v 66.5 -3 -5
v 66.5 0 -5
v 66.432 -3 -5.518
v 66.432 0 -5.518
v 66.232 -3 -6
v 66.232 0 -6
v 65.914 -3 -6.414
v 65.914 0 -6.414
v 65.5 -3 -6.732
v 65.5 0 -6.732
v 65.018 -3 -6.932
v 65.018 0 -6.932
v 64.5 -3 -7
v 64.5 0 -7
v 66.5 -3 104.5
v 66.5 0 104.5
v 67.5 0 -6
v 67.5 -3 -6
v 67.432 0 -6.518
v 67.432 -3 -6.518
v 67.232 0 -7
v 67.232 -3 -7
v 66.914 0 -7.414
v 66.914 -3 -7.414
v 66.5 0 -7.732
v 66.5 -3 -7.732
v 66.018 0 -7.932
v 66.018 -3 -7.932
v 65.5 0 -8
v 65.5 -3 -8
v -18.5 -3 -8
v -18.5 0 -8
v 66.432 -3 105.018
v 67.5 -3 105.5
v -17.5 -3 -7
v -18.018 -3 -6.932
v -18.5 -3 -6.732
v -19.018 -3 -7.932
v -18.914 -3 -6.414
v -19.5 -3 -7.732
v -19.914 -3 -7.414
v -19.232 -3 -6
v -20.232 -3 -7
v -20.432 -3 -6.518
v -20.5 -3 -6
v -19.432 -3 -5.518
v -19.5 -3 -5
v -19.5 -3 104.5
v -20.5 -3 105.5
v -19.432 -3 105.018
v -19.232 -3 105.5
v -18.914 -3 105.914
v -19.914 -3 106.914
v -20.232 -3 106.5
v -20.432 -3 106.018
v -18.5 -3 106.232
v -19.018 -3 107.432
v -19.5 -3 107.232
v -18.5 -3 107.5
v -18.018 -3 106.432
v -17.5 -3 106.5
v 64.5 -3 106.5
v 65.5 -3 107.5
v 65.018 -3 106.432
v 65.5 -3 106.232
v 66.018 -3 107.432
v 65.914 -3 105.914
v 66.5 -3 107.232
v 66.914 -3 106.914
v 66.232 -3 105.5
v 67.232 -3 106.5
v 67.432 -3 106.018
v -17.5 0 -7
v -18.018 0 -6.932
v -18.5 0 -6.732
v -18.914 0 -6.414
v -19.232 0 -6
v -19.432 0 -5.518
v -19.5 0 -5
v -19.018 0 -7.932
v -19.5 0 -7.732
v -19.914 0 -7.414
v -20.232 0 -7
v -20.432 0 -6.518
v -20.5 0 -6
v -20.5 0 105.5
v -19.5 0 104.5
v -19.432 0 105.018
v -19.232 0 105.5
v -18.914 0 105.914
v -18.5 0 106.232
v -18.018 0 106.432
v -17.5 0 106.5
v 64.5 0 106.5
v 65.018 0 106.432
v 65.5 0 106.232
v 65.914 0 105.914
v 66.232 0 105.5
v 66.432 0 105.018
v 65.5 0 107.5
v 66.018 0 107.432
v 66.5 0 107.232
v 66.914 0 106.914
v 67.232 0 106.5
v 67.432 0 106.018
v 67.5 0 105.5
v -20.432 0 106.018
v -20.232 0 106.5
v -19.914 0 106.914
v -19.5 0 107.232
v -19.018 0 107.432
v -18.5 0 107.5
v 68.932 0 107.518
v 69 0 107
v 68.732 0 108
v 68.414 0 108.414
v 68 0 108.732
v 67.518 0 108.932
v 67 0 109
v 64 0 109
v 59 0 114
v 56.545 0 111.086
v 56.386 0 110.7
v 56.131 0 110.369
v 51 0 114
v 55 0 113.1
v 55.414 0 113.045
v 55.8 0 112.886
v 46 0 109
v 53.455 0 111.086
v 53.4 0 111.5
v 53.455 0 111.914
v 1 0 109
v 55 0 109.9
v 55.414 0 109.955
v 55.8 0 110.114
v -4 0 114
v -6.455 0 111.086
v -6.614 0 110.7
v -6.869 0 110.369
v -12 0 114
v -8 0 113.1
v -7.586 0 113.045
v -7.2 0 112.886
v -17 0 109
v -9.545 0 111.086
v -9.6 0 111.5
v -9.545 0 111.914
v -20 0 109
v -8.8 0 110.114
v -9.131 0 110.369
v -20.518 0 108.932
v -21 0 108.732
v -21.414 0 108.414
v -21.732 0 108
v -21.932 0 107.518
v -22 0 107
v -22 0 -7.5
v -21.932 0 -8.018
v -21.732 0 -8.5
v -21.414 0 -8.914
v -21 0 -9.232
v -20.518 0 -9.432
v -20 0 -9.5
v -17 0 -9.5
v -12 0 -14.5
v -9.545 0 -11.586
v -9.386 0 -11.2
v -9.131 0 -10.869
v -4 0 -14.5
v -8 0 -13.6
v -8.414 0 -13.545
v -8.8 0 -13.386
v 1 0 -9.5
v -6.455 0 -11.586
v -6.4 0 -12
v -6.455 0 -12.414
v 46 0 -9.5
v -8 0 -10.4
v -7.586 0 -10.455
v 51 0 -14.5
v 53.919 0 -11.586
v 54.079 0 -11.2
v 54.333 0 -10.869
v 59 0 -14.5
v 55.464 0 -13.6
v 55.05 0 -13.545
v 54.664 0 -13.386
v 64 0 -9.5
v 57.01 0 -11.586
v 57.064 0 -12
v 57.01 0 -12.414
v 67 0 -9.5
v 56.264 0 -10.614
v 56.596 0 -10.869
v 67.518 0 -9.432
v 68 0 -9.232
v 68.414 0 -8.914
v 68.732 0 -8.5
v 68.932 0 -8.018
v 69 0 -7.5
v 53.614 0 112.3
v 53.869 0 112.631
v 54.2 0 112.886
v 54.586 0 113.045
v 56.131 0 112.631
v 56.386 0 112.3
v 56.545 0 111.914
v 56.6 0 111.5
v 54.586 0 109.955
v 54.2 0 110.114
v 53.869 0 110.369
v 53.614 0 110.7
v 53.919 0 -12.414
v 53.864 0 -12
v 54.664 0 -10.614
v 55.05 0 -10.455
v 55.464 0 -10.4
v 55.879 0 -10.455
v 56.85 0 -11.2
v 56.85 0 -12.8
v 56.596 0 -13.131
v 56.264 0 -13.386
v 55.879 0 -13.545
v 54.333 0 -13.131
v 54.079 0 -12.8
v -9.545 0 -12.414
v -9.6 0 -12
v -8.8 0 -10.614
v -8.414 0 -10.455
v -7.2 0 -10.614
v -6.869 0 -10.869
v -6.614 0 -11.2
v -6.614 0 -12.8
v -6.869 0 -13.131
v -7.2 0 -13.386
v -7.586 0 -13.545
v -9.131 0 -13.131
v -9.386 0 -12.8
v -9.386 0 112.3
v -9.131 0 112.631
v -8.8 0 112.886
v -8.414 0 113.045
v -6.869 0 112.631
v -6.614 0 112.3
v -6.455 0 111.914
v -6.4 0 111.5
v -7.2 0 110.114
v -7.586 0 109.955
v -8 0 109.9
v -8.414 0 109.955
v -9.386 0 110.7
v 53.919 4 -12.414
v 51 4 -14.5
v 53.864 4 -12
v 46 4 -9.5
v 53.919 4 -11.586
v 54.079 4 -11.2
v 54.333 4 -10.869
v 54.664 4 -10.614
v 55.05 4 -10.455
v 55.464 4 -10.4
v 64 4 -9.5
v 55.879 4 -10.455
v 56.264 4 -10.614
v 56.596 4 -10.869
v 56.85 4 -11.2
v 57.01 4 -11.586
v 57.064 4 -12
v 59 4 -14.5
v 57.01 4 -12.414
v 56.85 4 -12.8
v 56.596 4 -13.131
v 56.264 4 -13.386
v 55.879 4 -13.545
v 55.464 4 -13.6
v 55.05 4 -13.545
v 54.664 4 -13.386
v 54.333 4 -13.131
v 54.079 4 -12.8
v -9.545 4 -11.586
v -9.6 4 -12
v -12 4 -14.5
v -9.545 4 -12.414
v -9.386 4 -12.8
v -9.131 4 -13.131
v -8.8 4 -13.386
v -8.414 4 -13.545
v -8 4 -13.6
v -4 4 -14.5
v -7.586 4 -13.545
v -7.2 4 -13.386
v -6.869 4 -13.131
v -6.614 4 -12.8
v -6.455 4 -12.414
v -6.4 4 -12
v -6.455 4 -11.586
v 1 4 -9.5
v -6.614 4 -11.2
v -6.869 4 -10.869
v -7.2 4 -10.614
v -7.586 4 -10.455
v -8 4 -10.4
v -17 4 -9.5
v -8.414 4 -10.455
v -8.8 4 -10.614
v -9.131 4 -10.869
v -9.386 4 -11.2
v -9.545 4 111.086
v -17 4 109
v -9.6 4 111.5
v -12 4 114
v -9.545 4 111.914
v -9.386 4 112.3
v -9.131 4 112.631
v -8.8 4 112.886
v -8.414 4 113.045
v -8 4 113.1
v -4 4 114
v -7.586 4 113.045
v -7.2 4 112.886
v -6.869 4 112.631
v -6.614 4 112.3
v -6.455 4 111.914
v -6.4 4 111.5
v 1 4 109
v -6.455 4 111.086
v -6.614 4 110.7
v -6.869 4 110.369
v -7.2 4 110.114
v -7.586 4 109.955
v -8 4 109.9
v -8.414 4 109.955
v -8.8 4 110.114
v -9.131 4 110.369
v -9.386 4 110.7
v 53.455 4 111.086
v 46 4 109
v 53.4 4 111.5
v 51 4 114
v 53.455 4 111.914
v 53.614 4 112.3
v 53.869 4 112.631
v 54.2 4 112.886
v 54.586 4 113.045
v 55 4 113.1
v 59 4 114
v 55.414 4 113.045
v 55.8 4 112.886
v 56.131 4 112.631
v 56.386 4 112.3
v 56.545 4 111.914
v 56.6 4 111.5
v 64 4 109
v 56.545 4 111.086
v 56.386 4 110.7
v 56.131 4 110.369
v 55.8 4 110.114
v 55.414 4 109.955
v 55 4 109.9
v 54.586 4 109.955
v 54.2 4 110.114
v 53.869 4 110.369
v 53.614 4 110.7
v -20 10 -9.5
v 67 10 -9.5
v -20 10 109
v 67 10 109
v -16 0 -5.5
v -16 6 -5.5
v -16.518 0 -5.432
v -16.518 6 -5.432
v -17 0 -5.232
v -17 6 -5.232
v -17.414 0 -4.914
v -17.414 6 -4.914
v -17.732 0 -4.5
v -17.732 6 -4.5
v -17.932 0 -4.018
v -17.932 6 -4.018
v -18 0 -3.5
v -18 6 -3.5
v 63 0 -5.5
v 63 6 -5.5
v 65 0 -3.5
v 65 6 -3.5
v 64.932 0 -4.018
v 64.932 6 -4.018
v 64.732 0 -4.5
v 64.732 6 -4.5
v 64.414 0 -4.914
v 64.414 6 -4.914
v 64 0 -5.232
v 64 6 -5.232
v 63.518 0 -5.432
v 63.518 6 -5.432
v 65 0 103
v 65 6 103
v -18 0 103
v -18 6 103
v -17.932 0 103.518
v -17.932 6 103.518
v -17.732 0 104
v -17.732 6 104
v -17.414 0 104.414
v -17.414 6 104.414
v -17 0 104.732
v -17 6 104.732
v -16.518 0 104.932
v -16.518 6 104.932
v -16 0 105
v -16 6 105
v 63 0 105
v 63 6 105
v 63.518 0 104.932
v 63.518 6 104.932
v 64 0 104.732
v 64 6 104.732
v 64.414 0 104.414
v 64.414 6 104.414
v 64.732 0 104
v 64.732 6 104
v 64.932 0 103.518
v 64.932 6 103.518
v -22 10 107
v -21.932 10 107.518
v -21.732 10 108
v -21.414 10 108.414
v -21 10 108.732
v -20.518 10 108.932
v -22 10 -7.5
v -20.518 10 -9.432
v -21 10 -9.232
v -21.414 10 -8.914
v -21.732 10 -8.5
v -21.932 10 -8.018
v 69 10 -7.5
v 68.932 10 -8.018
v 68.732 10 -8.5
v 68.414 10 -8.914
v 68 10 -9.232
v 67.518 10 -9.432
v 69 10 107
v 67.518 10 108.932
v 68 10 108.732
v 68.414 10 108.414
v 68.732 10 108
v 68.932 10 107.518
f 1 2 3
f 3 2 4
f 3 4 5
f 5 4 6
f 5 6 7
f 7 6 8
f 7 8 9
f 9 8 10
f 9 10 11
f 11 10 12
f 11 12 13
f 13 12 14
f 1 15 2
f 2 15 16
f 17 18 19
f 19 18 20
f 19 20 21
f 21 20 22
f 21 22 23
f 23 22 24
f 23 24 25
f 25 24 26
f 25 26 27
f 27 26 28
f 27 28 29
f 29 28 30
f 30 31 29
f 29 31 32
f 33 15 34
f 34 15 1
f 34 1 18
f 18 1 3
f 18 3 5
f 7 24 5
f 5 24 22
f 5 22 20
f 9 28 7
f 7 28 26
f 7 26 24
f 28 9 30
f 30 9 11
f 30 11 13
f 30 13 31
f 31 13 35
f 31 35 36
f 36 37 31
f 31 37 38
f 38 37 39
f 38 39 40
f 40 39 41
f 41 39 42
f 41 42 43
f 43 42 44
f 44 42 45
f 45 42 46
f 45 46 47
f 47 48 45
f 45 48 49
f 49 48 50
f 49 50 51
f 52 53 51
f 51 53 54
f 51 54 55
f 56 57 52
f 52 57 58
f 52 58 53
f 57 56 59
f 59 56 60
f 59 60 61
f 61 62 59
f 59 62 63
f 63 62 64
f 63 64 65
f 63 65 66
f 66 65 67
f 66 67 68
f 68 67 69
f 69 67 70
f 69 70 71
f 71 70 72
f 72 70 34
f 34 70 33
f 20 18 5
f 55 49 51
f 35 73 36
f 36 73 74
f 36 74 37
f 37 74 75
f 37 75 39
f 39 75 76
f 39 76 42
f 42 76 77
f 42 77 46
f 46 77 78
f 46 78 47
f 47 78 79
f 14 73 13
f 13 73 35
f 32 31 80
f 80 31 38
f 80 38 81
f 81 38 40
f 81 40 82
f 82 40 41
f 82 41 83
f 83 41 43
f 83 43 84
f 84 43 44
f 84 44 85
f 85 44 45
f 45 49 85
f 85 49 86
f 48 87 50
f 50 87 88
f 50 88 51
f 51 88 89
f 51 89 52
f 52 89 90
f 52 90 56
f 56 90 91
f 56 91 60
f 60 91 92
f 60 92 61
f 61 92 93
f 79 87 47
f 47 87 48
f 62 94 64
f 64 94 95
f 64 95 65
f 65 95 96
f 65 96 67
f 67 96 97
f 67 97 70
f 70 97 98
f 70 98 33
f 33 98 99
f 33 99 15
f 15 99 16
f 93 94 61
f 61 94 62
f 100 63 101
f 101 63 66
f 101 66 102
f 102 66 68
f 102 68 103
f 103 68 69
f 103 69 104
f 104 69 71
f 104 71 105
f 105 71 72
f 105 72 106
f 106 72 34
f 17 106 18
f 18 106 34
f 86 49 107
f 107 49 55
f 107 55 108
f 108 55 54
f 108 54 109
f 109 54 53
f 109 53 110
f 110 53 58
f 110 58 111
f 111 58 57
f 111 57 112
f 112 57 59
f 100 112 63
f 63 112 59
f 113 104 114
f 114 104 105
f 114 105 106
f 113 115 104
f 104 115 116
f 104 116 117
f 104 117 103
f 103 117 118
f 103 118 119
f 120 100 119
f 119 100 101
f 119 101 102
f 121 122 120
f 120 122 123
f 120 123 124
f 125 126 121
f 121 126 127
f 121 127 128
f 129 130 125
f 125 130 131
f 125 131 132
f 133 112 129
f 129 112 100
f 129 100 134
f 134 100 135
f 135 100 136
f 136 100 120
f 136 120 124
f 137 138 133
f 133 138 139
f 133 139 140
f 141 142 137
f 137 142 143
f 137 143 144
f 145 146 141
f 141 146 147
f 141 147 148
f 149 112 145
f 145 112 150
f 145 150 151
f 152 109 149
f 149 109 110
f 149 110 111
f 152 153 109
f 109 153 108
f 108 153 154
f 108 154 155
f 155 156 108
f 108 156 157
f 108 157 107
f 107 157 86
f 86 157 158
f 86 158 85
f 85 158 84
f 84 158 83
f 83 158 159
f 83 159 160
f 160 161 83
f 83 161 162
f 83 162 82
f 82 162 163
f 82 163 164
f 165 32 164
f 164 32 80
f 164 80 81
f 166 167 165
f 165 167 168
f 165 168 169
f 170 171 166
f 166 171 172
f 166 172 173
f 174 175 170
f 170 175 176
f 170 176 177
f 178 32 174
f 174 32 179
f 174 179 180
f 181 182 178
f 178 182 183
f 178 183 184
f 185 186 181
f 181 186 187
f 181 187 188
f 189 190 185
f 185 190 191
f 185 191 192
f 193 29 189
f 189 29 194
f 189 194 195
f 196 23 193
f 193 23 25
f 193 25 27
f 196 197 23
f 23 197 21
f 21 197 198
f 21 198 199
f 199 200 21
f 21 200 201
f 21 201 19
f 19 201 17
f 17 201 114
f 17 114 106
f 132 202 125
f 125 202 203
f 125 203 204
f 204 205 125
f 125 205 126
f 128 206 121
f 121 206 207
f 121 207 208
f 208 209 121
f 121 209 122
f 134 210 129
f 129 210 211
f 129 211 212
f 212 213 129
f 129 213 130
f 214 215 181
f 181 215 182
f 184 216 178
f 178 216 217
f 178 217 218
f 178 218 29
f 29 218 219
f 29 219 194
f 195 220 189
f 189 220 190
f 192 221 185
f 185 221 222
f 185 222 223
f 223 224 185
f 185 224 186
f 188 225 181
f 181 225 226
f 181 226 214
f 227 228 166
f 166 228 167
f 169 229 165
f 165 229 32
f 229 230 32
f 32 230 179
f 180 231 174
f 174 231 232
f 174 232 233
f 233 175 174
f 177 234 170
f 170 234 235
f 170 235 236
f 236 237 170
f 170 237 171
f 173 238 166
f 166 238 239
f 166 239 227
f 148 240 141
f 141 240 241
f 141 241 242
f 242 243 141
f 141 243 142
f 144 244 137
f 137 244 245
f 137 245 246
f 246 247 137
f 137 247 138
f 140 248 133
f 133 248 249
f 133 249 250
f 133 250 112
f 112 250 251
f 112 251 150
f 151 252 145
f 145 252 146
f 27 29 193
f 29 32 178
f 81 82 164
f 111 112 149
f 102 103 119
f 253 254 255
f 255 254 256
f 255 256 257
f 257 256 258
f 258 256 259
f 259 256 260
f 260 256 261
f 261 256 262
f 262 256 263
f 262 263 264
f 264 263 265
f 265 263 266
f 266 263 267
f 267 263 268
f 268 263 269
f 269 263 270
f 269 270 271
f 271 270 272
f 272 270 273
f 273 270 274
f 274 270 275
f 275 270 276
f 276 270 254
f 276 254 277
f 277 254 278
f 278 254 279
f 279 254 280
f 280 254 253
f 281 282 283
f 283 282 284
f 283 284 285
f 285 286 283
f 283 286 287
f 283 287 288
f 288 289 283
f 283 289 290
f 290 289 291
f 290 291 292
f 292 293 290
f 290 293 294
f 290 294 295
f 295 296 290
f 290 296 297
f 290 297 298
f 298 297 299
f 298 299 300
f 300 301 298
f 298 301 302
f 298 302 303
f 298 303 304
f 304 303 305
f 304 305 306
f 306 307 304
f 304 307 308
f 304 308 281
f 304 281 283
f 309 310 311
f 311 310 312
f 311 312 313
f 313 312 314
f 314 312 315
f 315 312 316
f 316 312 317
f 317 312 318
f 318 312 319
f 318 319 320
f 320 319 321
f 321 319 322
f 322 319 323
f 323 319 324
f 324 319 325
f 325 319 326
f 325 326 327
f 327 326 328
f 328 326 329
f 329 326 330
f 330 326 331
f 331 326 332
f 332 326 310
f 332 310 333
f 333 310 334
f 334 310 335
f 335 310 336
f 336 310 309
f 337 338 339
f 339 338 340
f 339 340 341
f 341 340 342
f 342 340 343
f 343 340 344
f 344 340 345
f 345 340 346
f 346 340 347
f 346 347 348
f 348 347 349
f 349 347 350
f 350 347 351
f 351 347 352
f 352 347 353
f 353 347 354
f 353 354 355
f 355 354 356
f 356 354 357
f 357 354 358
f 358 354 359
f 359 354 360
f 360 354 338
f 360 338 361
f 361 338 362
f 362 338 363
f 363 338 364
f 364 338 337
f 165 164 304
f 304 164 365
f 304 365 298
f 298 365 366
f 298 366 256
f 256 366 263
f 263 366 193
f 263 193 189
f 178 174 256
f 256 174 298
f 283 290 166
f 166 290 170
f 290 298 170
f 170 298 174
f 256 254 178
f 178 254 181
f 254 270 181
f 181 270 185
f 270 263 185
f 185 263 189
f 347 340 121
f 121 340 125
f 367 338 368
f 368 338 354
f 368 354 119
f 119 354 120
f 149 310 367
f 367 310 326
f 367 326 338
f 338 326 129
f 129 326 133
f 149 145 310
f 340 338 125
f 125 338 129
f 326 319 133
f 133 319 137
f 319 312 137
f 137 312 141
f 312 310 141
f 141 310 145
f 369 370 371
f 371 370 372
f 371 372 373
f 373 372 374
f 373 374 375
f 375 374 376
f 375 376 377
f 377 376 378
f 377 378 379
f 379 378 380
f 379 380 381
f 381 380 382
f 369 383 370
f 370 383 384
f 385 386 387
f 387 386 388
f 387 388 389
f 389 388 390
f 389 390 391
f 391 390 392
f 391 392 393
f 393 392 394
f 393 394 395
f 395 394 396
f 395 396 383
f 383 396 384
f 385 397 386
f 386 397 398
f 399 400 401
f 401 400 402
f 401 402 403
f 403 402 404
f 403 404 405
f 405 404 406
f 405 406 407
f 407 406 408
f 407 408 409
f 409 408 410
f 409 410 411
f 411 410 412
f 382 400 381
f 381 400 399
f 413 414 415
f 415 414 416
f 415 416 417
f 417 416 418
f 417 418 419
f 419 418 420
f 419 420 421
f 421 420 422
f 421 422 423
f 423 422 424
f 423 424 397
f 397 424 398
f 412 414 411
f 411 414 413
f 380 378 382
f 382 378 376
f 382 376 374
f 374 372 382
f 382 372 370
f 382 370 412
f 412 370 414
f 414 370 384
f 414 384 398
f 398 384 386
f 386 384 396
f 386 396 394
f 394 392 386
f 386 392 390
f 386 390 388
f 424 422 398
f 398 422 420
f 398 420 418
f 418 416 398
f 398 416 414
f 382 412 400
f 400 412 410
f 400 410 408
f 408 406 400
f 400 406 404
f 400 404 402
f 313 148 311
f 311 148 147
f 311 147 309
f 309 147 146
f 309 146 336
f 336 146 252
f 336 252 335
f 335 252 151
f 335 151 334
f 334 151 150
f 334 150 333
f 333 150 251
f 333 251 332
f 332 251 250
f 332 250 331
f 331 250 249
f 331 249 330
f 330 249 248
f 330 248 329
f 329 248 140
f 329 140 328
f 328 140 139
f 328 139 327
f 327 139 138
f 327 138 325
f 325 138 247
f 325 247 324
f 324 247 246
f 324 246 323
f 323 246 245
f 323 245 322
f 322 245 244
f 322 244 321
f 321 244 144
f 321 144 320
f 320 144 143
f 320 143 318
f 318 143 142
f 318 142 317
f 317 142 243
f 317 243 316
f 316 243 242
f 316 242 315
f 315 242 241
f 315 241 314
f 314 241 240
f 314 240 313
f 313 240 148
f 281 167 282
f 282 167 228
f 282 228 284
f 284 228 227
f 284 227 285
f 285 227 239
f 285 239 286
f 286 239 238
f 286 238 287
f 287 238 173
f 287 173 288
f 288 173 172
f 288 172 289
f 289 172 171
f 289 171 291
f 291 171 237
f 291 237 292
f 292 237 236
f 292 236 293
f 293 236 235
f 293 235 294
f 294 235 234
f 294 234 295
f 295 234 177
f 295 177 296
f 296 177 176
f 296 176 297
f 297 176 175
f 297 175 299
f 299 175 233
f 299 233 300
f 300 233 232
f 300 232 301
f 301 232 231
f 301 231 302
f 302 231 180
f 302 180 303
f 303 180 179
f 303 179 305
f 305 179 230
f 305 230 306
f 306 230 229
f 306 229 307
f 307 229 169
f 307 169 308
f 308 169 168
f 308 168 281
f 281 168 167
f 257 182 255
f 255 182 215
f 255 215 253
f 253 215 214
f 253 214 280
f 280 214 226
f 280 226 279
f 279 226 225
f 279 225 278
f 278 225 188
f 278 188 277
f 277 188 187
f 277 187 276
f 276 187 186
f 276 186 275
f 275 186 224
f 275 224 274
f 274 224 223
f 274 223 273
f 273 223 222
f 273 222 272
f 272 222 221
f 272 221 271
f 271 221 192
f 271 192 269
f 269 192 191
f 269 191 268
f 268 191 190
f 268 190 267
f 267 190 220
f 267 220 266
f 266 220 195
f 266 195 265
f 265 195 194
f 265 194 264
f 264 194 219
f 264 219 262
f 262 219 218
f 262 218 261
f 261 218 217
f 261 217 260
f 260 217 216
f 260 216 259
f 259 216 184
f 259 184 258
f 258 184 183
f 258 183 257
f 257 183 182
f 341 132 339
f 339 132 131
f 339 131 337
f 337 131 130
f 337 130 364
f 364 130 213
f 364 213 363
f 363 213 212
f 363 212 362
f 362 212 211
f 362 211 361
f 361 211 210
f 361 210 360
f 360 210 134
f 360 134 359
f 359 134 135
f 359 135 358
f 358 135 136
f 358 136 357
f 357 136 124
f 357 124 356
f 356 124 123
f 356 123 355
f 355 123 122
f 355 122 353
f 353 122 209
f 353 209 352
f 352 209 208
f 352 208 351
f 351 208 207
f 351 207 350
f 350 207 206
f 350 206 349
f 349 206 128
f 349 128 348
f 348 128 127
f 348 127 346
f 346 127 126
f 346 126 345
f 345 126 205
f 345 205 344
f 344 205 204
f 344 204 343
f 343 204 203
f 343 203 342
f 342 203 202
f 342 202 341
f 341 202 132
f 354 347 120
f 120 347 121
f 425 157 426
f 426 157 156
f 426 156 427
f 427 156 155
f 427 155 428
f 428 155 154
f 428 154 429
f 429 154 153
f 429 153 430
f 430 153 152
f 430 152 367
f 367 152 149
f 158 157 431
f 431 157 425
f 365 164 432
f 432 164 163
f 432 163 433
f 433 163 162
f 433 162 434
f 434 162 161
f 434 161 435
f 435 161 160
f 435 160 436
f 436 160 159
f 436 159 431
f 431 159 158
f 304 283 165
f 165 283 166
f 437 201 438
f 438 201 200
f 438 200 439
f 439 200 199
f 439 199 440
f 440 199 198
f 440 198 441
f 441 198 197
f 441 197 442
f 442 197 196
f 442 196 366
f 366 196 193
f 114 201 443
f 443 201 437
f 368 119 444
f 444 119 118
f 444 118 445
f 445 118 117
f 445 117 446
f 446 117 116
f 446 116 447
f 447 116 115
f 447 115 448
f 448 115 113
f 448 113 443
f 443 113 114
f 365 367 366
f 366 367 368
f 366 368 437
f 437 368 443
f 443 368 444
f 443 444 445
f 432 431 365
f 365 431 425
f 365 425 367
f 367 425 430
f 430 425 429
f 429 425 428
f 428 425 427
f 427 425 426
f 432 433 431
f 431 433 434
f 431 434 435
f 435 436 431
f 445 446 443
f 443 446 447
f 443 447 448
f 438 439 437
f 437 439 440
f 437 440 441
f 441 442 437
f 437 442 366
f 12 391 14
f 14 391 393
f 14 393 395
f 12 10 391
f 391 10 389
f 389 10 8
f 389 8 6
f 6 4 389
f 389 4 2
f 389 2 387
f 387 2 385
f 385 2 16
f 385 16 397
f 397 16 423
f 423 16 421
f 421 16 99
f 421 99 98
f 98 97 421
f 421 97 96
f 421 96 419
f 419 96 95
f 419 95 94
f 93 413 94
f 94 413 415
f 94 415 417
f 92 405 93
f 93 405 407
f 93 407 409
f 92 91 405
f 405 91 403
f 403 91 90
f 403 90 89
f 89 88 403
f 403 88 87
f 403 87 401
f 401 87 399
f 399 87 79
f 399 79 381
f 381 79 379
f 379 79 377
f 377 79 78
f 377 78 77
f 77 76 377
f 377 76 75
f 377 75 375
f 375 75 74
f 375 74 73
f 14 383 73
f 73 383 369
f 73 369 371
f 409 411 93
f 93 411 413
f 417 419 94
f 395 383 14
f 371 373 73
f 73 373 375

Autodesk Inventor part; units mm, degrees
ref_plane "YZ Plane" through (0, 0, 0) normal (1, 0, 0) x (0, 1, 0)
ref_plane "XZ Plane" through (0, 0, 0) normal (0, 1, 0) x (-1, 0, 0)
ref_plane "XY Plane" through (0, 0, 0) normal (0, 0, 1) x (1, 0, 0)
sketch "Sketch1" plane through (0, 0, 0) normal (0, 1, 0) x (-1, 0, 0)
  circle A0 centre (-55, 111.5) radius 1.6
  circle A1 centre (-55.4645, -12) radius 1.6
  circle A2 centre (8, -12) radius 1.6
  circle A3 centre (8, 111.5) radius 1.6
  arc A4 (-67, 109) -> (-69, 107) centre (-67, 107) ccw
  line L0 (-69, 107) -> (-69, -7.5)
  arc A5 (-69, -7.5) -> (-67, -9.5) centre (-67, -7.5) ccw
  line L1 (-67, -9.5) -> (-64, -9.5)
  line L2 (-59, -14.5) -> (-64, -9.5)
  line L3 (-51, -14.5) -> (-59, -14.5)
  line L4 (-46, -9.5) -> (-51, -14.5)
  line L5 (-46, -9.5) -> (-1, -9.5)
  line L6 (-1, -9.5) -> (4, -14.5)
  line L7 (4, -14.5) -> (12, -14.5)
  line L8 (12, -14.5) -> (17, -9.5)
  line L9 (17, -9.5) -> (20, -9.5)
  arc A6 (20, -9.5) -> (22, -7.5) centre (20, -7.5) ccw
  line L10 (22, -7.5) -> (22, 107)
  arc A7 (22, 107) -> (20, 109) centre (20, 107) ccw
  line L11 (20, 109) -> (17, 109)
  line L12 (17, 109) -> (12, 114)
  line L13 (12, 114) -> (4, 114)
  line L14 (4, 114) -> (-1, 109)
  line L15 (-1, 109) -> (-46, 109)
  line L16 (-46, 109) -> (-51, 114)
  line L17 (-51, 114) -> (-59, 114)
  line L18 (-59, 114) -> (-64, 109)
  line L19 (-64, 109) -> (-67, 109)
  point P0 (0, 0)
  point P1 (0, 0)
extrude "Extrusion1" add sketch "Sketch1" along normal blind 10
sketch "Sketch4" plane through (0, 0, 0) normal (0, -1, 0) x (1, 0, 0)
  line L0 (65, 105) -> (-18, 105)
  line L1 (-18, 105) -> (-18, -5.5)
  line L2 (-18, -5.5) -> (65, -5.5)
  line L3 (65, -5.5) -> (65, 105)
  line L4 (1, 109) -> (46, 109) projected
  line L5 (46, -9.5) -> (1, -9.5) projected
  line L6 (-22, -7.5) -> (-22, 107) projected
  line L7 (69, 107) -> (69, -7.5) projected
  point P0 (0, 0)
  dimension "d2" = 4
  dimension "d3" = 4
  dimension "d4" = 4
  dimension "d5" = 4
extrude "Extrusion2" cut sketch "Sketch4" against normal blind 6
fillet "Fillet1" radius 2 4 edges at (65, 3, 105) (-18, 3, 105) (65, 3, -5.5) (-18, 3, -5.5)
sketch "Sketch5" plane through (0, 10, 0) normal (0, 1, 0) x (1, 0, 0)
  line L0 (64, -109) -> (67, -109) projected
  line L1 (-40.3504, -169.2964) -> (66.299, -169.2964)
  line L2 (66.299, -169.2964) -> (66.299, -109)
  line L3 (66.299, -109) -> (-40.3504, -109)
  line L4 (-40.3504, -109) -> (-40.3504, -169.2964)
  line L5 (-53.7547, 54.3444) -> (65.5201, 54.3444)
  line L6 (65.5201, 54.3444) -> (65.5201, 9.5)
  line L7 (65.5201, 9.5) -> (-53.7547, 9.5)
  line L8 (-53.7547, 9.5) -> (-53.7547, 54.3444)
  point P0 (0, 0)
extrude "Extrusion3" cut sketch "Sketch5" against normal blind 6
sketch "Sketch6" plane through (0, 0, 0) normal (0, -1, 0) x (1, 0, 0)
  line L0 (67.5, 107.5) -> (-20.5, 107.5)
  line L1 (-20.5, 107.5) -> (-20.5, -8)
  line L2 (-20.5, -8) -> (67.5, -8)
  line L3 (67.5, -8) -> (67.5, 107.5)
  line L4 (67, -9.5) -> (-20, -9.5) projected
  line L5 (-22, -7.5) -> (-22, 107) projected
  line L6 (69, 107) -> (69, -7.5) projected
  line L7 (-20, 109) -> (67, 109) projected
  line L8 (66.5, 106.5) -> (-19.5, 106.5)
  line L9 (-19.5, 106.5) -> (-19.5, -7)
  line L10 (-19.5, -7) -> (66.5, -7)
  line L11 (66.5, -7) -> (66.5, 106.5)
  point P0 (0, 0)
  dimension "d11" = 1.5
  dimension "d12" = 1.5
  dimension "d13" = 1.5
  dimension "d14" = 1.5
  dimension "d15" = 1
  dimension "d16" = 1
  dimension "d17" = 1
  dimension "d18" = 1
extrude "Extrusion4" add sketch "Sketch6" along normal blind 3
fillet "Fillet2" radius 2 8 edges at (-20.5, -1.5, 107.5) (67.5, -1.5, 107.5) (66.5, -1.5, 106.5) (-19.5, -1.5, 106.5) (-20.5, -1.5, -8) (-19.5, -1.5, -7) (67.5, -1.5, -8) (66.5, -1.5, -7)
properties part number "Top"
